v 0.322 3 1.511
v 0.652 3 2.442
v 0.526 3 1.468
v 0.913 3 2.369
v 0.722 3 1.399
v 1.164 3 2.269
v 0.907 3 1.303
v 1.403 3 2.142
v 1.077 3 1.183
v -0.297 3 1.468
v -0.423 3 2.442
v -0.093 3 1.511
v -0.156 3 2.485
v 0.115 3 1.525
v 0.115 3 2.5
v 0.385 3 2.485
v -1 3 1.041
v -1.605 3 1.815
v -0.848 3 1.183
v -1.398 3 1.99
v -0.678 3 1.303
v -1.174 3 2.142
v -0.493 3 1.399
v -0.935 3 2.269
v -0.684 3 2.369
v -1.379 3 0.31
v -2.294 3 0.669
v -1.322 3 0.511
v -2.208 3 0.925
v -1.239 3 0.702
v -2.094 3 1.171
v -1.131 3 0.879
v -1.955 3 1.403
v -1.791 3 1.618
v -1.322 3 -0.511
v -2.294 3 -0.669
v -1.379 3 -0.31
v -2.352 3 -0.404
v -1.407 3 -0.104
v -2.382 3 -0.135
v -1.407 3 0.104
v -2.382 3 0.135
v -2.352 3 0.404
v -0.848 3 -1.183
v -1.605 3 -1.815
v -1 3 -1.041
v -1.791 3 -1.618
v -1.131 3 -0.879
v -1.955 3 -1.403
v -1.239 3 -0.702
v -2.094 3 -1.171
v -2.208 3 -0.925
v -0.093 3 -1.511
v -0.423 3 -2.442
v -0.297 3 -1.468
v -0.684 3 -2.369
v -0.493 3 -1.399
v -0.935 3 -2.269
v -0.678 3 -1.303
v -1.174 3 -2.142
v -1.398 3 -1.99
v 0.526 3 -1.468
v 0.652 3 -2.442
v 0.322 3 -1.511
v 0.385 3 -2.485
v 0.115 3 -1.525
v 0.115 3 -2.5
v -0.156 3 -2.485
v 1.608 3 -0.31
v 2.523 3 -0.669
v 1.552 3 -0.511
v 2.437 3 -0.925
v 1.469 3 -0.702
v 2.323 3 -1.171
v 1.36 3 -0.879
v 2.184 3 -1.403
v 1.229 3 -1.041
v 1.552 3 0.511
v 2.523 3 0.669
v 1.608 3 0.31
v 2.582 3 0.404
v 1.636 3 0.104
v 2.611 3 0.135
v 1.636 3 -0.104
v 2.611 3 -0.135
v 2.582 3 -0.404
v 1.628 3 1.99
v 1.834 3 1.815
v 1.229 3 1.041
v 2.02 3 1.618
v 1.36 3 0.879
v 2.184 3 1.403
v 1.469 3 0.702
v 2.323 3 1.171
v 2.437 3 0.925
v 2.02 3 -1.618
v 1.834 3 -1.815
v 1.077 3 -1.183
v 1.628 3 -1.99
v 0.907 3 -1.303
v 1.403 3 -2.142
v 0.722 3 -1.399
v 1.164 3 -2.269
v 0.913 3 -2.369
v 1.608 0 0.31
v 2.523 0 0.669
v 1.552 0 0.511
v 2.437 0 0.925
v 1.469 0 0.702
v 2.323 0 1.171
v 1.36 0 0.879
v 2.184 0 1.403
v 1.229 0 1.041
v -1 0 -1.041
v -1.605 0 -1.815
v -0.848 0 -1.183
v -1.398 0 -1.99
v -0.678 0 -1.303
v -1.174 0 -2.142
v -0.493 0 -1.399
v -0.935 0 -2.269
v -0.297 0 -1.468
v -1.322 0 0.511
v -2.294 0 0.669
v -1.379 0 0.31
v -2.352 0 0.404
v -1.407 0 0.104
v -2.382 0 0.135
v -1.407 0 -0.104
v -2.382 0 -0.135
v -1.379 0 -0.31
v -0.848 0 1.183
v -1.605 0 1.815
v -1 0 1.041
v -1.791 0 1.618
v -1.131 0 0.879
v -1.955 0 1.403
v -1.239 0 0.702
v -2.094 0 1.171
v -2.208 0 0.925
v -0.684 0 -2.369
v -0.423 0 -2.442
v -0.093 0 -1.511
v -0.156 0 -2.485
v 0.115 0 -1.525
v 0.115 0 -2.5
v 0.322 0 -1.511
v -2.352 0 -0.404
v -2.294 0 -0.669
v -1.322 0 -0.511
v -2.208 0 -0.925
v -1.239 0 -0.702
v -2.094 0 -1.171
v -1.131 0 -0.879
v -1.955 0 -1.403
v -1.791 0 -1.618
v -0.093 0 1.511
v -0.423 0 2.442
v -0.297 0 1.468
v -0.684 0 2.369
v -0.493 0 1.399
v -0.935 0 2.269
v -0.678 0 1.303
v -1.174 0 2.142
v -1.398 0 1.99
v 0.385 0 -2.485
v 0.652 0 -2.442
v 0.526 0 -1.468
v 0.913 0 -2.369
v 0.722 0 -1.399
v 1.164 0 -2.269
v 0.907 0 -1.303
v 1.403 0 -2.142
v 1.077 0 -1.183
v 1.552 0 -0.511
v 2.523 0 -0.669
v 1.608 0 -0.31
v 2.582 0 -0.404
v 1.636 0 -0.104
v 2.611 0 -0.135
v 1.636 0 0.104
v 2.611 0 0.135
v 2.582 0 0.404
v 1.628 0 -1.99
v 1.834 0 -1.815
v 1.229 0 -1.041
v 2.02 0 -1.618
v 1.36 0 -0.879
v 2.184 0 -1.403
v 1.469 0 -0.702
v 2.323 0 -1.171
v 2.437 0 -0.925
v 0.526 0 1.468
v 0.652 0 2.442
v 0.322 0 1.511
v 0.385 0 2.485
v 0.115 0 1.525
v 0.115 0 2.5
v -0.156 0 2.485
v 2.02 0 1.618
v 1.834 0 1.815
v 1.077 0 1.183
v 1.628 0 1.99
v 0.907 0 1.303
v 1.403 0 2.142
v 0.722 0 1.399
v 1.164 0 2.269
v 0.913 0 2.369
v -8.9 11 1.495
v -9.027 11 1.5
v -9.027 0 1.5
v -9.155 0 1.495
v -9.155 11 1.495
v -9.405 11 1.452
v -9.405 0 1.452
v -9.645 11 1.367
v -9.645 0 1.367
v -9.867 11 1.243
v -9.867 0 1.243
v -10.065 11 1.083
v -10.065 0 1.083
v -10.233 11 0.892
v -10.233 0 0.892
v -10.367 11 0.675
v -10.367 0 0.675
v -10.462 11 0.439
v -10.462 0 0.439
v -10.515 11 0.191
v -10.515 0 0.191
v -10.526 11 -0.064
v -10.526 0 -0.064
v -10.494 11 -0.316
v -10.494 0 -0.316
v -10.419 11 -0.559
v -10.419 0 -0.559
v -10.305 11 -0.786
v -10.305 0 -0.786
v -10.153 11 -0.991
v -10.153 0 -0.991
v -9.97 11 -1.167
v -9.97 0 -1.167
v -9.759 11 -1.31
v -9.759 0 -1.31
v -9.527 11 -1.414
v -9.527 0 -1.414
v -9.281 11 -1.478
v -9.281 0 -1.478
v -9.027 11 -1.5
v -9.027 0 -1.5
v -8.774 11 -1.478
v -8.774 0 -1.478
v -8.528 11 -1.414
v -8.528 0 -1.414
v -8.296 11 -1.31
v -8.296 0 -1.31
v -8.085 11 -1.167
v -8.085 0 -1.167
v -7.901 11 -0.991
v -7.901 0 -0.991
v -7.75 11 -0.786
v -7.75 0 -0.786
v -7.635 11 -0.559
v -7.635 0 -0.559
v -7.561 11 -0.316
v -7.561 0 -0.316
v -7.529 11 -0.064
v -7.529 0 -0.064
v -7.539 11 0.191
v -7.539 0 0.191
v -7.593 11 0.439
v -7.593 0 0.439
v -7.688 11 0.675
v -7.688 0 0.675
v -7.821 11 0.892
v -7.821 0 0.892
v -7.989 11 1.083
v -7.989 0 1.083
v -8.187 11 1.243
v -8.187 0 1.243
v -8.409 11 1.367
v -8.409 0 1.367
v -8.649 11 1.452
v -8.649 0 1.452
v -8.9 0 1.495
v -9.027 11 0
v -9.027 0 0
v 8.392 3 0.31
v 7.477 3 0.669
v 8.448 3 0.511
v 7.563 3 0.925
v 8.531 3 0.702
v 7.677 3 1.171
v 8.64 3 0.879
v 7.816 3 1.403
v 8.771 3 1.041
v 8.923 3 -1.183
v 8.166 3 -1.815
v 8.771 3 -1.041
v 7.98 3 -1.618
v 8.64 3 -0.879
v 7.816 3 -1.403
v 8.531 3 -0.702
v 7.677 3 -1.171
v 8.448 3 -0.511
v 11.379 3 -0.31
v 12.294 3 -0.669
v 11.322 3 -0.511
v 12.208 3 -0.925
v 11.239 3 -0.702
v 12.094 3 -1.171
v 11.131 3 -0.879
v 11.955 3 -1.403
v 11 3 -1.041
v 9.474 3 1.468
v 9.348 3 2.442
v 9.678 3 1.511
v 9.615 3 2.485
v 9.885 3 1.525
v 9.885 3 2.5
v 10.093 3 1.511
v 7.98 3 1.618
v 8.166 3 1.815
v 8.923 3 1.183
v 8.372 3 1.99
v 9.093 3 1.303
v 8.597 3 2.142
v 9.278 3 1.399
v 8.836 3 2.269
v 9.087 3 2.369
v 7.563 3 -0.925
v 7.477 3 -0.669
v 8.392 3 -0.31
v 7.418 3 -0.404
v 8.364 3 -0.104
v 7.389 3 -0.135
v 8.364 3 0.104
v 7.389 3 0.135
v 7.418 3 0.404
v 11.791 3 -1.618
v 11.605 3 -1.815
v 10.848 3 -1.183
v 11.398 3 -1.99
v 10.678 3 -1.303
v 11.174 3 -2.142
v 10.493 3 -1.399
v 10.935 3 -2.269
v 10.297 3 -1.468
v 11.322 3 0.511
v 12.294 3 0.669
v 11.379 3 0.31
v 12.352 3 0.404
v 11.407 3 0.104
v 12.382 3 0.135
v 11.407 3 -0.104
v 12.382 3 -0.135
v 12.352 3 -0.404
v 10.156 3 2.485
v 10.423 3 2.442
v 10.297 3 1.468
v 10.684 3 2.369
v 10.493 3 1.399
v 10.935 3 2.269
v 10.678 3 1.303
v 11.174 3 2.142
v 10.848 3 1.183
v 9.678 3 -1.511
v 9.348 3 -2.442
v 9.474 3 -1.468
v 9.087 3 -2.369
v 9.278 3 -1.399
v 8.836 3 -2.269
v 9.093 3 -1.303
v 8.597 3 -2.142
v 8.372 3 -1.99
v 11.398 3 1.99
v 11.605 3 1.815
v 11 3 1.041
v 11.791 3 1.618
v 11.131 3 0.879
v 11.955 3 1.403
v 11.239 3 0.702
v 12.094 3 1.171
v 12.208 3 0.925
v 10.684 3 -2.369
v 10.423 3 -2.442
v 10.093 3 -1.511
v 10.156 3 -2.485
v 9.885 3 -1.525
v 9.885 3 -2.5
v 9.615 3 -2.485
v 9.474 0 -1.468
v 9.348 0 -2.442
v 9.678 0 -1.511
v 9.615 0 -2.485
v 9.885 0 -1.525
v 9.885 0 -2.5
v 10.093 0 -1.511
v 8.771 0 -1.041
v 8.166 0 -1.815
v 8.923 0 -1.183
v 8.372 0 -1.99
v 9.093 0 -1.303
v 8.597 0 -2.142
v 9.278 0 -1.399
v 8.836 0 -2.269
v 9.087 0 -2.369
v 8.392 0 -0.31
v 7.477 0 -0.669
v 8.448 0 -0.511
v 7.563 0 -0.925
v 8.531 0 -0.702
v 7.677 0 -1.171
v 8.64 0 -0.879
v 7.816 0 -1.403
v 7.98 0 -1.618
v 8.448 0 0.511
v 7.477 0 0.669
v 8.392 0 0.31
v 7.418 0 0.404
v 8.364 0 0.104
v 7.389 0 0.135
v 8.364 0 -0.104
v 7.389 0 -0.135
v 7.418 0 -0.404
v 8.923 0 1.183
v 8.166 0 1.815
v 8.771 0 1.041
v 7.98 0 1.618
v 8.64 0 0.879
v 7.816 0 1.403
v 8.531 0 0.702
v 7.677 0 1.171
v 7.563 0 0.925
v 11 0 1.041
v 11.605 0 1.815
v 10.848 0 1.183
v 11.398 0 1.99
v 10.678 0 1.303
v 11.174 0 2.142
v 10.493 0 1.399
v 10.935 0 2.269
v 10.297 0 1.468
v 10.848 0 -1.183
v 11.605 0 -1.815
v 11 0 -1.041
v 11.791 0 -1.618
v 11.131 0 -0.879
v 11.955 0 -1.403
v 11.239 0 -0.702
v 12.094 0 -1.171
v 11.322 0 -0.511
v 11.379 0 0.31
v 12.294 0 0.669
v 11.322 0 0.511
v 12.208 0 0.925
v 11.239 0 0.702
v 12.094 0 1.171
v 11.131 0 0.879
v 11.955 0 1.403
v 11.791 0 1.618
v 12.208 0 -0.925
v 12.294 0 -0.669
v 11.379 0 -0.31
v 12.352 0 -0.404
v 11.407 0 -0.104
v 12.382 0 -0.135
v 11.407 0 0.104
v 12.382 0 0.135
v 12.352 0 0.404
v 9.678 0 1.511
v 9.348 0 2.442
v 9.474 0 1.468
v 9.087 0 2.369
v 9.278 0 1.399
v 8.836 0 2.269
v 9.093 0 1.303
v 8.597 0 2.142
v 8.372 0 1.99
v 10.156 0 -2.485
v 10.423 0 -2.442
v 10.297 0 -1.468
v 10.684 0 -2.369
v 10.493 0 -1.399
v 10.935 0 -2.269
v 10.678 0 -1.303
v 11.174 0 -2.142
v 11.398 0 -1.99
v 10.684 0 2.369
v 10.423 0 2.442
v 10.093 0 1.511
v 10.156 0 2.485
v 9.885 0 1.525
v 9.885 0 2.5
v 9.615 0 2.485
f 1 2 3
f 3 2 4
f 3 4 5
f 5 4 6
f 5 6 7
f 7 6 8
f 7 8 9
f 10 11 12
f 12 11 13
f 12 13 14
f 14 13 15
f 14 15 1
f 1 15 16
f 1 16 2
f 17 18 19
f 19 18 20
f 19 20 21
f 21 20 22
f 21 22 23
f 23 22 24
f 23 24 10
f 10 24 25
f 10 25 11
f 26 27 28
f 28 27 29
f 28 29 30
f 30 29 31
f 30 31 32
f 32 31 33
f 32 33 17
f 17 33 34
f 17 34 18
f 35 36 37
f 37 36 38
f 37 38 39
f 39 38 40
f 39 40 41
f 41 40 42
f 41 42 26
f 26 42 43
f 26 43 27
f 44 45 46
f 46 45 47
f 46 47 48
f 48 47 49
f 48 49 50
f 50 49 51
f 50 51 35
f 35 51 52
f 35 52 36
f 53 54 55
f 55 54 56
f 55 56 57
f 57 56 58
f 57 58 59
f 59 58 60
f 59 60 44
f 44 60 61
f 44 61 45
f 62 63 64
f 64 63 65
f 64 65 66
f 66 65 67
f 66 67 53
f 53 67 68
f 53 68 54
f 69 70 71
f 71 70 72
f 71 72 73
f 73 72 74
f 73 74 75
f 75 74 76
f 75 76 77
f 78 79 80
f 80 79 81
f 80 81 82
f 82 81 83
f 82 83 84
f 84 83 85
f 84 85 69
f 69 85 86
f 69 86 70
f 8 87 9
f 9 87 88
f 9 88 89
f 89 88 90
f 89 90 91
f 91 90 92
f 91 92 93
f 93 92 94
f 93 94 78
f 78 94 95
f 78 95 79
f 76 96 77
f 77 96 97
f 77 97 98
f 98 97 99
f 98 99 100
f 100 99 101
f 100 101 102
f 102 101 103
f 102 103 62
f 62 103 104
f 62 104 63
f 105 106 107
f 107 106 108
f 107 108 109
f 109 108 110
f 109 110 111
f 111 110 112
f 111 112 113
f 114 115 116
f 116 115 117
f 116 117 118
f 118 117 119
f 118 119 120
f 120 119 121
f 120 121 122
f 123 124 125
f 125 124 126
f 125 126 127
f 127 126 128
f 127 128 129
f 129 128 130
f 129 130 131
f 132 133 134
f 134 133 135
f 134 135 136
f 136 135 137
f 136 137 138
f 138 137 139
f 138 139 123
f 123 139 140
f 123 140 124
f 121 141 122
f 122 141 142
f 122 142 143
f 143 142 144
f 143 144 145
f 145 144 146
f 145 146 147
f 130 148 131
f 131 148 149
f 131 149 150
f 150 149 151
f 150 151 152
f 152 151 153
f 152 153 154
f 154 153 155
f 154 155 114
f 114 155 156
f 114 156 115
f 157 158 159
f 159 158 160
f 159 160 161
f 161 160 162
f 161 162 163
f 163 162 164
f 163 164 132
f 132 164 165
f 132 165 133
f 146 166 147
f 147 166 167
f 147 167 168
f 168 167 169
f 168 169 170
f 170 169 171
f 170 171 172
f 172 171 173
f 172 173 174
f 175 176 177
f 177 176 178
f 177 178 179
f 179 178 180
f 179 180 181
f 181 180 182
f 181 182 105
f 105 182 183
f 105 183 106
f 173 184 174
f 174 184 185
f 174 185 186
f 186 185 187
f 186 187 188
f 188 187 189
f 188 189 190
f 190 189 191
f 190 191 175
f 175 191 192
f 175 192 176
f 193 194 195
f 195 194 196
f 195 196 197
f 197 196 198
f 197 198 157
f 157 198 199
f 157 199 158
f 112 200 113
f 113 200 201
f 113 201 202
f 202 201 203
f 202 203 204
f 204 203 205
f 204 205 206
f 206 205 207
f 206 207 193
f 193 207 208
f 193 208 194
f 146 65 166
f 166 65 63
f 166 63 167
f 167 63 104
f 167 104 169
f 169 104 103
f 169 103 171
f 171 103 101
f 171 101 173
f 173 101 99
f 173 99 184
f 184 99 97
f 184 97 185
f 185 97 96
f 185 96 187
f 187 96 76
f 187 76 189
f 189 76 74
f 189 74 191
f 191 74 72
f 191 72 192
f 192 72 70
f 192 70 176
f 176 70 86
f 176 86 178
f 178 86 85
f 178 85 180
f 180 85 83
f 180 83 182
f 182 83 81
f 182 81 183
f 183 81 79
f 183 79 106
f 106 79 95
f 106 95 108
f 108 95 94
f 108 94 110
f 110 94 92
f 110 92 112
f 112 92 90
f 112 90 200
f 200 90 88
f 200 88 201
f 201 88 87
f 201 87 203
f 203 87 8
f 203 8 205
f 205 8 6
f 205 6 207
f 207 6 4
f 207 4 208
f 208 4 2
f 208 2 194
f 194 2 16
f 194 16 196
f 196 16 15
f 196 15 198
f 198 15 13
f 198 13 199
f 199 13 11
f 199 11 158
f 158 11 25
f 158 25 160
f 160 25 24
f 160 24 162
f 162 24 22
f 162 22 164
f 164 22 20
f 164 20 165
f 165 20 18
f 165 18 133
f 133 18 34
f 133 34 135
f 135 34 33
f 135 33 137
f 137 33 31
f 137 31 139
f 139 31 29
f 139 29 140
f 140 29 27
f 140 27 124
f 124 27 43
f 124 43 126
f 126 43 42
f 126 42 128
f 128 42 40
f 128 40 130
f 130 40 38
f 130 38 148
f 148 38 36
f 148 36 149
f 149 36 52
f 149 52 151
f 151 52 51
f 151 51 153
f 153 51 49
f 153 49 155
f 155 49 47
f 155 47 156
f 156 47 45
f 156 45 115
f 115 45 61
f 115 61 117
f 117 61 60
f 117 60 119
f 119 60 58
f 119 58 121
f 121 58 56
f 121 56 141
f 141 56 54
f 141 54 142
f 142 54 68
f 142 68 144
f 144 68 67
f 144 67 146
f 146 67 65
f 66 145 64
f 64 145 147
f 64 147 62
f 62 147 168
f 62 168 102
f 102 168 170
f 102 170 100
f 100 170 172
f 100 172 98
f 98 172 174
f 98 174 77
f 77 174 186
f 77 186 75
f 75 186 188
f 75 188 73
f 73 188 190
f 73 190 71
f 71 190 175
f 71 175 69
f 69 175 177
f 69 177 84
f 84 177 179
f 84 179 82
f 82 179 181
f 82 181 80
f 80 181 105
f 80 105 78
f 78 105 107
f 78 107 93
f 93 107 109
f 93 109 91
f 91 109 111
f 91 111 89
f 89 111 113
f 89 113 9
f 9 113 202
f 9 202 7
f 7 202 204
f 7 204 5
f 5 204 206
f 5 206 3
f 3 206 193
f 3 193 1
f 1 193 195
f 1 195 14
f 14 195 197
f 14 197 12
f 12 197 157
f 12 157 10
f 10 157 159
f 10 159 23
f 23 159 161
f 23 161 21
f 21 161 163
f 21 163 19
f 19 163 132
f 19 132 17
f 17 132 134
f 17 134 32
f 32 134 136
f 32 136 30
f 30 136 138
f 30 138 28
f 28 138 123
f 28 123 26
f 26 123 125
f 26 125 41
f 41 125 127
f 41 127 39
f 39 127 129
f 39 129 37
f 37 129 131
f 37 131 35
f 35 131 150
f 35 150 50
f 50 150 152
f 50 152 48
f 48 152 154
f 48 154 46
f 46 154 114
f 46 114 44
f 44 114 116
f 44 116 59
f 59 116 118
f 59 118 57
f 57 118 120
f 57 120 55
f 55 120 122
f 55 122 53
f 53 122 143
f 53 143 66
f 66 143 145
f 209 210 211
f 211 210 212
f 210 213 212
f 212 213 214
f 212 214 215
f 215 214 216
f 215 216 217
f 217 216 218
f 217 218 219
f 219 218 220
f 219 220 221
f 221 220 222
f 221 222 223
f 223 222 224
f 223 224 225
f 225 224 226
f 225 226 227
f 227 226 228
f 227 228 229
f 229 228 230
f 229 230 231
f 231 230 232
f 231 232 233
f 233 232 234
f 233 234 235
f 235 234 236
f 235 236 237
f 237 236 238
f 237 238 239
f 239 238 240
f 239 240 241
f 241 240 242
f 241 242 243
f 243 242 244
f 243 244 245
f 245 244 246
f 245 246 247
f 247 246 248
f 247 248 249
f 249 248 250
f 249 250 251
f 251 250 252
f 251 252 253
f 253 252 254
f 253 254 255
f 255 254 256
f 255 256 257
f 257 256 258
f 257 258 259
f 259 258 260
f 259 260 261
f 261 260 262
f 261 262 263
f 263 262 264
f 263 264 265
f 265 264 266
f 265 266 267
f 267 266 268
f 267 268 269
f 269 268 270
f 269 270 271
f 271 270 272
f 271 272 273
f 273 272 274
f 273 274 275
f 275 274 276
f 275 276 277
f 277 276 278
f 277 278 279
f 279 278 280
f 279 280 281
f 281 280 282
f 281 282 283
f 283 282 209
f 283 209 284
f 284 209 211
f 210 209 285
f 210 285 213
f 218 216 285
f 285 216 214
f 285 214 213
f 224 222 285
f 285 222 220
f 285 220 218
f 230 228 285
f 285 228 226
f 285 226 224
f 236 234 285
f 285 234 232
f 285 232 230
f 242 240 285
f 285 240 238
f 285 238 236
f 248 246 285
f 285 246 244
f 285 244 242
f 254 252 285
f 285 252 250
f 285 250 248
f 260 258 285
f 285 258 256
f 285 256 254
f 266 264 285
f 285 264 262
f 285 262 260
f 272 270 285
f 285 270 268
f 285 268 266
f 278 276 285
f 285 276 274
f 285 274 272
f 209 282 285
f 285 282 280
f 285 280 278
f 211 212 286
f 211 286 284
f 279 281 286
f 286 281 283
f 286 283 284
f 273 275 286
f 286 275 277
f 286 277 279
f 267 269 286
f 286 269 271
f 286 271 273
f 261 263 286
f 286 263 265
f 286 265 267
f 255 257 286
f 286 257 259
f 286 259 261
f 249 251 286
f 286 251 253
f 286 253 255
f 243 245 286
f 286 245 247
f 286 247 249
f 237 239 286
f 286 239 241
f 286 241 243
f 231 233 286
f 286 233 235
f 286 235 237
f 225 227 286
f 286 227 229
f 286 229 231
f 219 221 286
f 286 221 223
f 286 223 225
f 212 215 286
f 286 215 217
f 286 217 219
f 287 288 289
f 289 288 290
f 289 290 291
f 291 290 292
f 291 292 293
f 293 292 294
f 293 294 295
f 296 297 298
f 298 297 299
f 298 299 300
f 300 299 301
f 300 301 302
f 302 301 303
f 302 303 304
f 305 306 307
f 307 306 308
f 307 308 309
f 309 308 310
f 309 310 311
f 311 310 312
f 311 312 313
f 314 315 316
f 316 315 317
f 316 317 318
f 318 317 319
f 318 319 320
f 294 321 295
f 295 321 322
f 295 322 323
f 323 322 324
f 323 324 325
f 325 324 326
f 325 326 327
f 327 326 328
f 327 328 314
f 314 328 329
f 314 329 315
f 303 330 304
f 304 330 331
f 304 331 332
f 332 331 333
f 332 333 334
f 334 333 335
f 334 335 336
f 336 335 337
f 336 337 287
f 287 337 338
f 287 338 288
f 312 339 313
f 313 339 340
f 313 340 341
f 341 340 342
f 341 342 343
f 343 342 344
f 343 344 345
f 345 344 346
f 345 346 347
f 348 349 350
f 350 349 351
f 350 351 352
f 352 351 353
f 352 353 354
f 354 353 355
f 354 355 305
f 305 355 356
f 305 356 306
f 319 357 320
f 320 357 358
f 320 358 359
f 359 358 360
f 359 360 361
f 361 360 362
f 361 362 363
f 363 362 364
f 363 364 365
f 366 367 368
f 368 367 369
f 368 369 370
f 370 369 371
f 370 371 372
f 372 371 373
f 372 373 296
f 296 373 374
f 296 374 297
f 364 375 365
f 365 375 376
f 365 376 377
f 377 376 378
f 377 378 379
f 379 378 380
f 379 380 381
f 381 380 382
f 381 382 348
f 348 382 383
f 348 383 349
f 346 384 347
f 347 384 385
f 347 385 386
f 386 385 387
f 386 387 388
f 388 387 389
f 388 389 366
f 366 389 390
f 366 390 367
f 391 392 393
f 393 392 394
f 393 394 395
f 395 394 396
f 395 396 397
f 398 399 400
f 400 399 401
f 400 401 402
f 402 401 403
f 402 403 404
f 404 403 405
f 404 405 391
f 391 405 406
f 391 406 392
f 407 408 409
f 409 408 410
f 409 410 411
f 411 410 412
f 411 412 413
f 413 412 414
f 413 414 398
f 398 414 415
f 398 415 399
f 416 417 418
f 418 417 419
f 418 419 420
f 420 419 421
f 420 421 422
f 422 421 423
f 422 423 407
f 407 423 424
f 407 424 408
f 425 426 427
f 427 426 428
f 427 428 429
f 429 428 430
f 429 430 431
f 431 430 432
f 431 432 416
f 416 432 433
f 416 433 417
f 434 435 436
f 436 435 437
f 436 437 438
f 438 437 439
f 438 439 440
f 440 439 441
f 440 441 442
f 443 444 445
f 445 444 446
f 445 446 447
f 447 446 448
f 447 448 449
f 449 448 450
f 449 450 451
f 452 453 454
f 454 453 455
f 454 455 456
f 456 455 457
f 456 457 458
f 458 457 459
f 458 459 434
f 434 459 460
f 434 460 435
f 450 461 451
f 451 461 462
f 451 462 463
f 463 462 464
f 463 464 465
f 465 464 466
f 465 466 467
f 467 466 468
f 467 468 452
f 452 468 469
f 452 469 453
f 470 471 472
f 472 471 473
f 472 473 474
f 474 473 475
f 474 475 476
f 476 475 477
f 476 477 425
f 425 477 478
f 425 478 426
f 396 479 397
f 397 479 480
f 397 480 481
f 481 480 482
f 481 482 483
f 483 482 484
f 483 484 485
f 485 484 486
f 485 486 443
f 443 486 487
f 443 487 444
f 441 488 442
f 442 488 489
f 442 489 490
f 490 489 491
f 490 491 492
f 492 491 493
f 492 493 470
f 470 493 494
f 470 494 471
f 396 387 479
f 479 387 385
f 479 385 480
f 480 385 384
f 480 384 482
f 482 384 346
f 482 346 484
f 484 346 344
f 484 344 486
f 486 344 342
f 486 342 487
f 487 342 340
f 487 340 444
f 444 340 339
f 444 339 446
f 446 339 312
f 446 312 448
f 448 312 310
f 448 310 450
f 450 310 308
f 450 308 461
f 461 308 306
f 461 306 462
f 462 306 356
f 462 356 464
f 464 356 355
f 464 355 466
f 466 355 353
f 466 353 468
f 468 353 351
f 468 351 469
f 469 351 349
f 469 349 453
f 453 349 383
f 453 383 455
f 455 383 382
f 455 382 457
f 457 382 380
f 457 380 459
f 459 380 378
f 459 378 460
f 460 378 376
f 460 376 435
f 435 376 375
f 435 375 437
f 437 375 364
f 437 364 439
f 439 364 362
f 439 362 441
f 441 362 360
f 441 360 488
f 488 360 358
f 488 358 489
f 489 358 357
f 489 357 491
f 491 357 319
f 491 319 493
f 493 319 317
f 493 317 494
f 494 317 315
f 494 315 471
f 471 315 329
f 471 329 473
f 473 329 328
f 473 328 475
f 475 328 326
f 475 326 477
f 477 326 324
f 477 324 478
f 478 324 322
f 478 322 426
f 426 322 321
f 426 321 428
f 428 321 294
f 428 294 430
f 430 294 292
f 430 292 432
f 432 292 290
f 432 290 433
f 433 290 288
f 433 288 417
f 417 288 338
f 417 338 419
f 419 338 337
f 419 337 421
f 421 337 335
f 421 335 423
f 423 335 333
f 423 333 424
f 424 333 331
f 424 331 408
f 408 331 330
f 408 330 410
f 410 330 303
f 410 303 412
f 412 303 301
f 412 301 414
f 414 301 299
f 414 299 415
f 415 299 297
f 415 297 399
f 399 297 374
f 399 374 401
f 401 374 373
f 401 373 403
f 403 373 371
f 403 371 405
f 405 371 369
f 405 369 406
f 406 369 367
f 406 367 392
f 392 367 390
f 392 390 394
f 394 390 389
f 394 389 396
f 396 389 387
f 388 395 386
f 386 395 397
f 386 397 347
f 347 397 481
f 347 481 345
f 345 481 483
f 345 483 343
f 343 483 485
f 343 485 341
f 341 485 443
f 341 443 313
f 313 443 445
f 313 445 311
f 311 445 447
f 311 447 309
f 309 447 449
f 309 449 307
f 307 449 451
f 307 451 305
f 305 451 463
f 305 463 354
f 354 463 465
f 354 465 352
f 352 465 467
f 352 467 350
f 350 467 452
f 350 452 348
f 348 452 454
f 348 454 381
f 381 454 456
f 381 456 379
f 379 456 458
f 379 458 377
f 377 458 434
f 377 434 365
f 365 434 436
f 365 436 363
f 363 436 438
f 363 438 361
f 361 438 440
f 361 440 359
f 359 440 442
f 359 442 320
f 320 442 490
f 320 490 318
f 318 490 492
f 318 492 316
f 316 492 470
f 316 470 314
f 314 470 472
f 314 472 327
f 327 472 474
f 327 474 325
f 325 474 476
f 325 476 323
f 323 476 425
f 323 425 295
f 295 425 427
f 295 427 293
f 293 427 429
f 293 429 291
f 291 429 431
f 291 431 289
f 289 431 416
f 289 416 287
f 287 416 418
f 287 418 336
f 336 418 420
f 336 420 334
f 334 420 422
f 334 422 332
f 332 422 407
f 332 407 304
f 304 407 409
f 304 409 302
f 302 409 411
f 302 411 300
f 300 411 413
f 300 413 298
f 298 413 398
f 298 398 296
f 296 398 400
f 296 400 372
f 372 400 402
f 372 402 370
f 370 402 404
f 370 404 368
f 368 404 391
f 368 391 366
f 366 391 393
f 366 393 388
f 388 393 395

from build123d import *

# Parameters (mm, degrees)
SKETCH1_R           = 2.5
SKETCH1_R_2         = 1.525
BOSS_EXTRUDE1_DEPTH = 3
SKETCH2_R           = 1.5
BOSS_EXTRUDE2_DEPTH = 11


with BuildPart() as part:
    # Sketch1 → Boss-Extrude1 (new body)
    with BuildSketch(Plane(origin=(0, 0, 0), x_dir=(1, 0, 0), z_dir=(0, 1, 0))):
        with Locations(Location((0.114586476, 0, 0), (0, 0, 270))):
            Circle(SKETCH1_R)
        with Locations(Location((0.114586476, 0, 0), (0, 0, 270))):
            Circle(SKETCH1_R_2, mode=Mode.SUBTRACT)
    extrude(amount=BOSS_EXTRUDE1_DEPTH)


with BuildPart() as body_2:
    # Sketch2 → Boss-Extrude2 (new body)
    with BuildSketch(Plane(origin=(0, 0, 0), x_dir=(1, 0, 0), z_dir=(0, 1, 0))):
        with Locations(Location((-9.027296586, 0, 0), (0, 0, 270))):
            Circle(SKETCH2_R)
    extrude(amount=BOSS_EXTRUDE2_DEPTH)


with BuildPart() as body_3:
    # Mirror1: mirrored copy
    add(part.part.mirror(Plane(origin=(5, 0, 0), x_dir=(0, 0, 1), z_dir=(1, 0, 0))))


solid = Compound([part.part, body_2.part, body_3.part])
